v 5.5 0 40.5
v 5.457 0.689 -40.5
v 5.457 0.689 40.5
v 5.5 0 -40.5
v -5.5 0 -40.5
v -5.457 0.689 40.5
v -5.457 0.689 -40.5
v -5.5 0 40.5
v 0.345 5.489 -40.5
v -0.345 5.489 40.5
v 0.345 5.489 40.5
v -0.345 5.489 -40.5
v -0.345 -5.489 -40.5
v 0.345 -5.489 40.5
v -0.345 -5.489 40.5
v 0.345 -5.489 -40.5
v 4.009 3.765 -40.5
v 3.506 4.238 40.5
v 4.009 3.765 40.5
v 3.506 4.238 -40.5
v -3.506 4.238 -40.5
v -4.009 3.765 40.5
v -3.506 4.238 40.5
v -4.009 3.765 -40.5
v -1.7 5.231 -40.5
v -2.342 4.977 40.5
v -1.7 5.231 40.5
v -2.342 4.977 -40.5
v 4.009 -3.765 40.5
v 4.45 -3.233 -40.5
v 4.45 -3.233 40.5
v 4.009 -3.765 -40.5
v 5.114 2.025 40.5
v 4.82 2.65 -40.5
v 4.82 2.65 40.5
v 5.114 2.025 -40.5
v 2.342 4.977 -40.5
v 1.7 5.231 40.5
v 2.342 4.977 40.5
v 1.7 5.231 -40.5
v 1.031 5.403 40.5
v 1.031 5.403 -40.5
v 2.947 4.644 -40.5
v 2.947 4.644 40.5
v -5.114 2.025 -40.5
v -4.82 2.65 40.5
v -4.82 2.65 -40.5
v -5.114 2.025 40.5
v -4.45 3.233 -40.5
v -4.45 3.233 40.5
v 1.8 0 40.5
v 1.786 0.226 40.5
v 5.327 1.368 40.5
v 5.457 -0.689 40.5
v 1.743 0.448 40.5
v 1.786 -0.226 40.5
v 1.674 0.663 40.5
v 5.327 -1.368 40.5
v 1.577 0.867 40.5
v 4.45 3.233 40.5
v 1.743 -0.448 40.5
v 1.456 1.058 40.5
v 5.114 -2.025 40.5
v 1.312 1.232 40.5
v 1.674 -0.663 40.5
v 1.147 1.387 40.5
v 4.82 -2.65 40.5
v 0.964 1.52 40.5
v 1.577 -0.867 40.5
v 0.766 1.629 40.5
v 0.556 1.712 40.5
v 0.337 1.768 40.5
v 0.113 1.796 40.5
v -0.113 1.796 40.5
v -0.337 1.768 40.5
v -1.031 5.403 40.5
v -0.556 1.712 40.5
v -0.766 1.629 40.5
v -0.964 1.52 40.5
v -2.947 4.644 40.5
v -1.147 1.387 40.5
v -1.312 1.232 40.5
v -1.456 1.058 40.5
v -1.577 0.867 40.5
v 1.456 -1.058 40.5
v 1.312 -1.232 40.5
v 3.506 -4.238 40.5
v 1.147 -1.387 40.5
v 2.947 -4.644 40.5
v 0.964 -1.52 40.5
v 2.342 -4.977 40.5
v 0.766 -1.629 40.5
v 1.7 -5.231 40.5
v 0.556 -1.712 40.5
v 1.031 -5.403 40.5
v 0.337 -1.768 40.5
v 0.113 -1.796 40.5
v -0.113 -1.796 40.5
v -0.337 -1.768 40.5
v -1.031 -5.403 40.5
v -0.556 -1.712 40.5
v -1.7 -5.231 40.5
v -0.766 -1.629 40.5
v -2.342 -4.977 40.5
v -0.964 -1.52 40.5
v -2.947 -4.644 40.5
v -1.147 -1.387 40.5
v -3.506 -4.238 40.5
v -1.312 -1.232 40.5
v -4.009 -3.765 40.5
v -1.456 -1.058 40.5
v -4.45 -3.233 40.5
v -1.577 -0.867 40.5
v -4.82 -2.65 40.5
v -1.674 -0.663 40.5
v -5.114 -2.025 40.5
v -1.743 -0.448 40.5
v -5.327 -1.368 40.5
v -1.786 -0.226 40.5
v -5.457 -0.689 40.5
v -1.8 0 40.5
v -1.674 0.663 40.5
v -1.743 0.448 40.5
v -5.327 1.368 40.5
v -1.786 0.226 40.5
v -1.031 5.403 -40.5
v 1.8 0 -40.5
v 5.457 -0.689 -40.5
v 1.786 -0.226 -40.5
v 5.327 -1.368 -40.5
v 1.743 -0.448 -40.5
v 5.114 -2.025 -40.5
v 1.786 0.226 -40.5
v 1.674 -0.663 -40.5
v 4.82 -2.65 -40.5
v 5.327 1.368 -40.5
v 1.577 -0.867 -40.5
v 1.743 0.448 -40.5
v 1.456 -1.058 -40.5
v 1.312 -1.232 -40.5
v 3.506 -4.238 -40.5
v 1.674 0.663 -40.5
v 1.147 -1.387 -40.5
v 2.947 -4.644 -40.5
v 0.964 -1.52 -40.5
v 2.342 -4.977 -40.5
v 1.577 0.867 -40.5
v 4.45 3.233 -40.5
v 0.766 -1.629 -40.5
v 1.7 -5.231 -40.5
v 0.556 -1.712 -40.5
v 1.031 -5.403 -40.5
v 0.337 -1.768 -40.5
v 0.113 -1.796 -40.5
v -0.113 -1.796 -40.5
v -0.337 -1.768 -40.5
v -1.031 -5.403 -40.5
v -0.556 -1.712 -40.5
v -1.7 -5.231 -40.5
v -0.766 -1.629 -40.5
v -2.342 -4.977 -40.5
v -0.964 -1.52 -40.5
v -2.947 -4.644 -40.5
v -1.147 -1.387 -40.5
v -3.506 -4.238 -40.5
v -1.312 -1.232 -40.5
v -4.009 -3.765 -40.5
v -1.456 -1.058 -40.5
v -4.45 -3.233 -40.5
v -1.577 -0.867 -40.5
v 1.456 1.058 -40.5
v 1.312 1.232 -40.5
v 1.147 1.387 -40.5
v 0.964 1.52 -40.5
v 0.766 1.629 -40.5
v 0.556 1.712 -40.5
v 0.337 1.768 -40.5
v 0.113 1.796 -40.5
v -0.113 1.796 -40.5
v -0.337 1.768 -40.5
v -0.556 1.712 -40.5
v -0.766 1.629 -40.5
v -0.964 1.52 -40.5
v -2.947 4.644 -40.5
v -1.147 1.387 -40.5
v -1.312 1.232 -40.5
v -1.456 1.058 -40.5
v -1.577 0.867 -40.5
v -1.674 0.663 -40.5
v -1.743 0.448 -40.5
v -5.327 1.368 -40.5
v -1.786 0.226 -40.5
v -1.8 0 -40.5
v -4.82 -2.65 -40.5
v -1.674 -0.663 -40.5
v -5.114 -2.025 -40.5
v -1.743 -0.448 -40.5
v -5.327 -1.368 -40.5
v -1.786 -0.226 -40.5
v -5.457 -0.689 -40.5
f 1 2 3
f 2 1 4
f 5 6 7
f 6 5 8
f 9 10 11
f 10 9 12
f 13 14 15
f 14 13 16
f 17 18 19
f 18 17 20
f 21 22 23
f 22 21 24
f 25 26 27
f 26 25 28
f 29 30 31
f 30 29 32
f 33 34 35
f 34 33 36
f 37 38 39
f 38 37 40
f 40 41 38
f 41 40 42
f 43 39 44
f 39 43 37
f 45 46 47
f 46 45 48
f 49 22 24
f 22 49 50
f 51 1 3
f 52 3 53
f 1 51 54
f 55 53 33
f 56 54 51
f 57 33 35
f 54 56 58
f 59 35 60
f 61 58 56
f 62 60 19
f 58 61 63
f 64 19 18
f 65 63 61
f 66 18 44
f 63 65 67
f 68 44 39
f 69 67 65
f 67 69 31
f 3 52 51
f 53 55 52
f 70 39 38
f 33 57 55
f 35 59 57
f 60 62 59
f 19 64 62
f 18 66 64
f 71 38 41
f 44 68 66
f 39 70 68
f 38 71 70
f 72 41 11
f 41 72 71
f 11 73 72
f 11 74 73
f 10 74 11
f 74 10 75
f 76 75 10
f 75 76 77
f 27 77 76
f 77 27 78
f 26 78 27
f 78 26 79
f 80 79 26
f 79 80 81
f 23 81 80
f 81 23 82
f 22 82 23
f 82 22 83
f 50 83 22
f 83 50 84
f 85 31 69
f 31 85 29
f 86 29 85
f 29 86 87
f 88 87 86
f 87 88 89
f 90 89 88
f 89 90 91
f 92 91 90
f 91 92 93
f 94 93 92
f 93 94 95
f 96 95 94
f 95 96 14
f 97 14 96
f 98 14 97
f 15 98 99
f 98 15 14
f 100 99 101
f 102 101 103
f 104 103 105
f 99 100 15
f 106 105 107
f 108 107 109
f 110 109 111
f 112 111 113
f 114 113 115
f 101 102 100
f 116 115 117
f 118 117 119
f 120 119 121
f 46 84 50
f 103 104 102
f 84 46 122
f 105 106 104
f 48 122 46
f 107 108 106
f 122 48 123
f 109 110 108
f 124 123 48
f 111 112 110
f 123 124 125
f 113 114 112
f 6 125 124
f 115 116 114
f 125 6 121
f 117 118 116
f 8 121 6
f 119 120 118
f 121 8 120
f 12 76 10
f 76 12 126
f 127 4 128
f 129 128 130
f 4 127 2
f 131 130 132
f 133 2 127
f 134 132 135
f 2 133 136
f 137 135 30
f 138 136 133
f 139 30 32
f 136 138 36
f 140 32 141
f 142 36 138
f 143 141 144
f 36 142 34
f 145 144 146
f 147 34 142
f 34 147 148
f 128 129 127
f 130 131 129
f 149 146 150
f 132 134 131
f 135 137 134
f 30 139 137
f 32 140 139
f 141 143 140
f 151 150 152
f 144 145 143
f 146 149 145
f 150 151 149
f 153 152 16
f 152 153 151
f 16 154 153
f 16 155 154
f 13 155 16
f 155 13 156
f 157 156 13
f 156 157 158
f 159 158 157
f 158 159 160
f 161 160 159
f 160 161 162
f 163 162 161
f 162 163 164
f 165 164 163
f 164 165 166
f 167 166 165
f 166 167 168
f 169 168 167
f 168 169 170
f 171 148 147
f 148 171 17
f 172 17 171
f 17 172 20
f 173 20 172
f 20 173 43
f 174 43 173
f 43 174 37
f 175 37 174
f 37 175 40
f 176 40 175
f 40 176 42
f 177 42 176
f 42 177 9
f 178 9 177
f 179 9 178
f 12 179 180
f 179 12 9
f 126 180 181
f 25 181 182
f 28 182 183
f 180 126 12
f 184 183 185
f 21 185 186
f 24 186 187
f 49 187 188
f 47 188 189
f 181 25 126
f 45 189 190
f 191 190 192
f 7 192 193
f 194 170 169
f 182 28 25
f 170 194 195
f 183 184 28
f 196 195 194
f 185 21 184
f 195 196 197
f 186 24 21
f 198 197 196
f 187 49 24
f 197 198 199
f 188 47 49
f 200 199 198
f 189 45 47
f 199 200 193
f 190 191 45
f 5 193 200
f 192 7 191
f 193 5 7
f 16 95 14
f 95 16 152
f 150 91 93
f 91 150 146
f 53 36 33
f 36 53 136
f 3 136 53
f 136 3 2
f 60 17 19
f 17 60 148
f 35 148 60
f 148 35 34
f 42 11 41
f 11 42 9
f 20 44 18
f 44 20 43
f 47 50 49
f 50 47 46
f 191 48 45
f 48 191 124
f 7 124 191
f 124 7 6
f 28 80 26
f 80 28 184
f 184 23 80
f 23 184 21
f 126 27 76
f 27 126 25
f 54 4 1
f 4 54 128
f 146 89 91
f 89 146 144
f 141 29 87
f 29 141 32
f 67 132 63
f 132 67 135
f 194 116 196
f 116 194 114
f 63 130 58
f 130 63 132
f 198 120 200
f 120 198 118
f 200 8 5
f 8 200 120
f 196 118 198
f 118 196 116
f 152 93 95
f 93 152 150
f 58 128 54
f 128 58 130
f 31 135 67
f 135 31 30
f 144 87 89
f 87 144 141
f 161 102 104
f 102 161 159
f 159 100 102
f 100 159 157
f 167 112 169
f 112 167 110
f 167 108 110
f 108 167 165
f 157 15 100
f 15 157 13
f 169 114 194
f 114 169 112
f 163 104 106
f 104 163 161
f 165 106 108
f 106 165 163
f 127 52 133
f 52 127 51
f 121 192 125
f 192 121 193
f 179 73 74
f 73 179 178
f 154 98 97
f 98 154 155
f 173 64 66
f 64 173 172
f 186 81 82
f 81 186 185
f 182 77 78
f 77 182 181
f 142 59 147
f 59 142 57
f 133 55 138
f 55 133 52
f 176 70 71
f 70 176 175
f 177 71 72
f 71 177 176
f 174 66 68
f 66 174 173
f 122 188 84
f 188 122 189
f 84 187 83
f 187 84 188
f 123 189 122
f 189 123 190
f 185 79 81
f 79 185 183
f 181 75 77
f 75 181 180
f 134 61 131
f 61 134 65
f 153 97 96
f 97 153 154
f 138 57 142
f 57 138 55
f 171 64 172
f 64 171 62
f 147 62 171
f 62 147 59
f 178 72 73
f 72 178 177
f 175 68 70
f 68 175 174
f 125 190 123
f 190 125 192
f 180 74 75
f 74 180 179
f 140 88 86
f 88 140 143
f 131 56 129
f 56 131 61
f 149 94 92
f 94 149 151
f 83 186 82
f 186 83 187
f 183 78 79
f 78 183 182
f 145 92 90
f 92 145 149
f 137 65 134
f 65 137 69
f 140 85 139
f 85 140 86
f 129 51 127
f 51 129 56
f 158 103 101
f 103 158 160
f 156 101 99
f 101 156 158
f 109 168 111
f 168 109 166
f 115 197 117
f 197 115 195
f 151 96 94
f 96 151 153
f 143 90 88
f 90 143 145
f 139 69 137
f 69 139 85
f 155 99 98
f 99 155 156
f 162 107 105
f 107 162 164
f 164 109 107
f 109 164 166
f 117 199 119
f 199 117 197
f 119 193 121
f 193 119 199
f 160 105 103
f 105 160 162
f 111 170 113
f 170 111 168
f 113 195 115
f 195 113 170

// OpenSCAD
$fn = 50;


difference() {
	union() {
		translate(v = [0, 0, -40.5000000000]) {
			cylinder(h = 81, r = 5.5000000000);
		}
	}
	union() {
		#translate(v = [0, 0, -100.0000000000]) {
			cylinder(h = 200, r = 1.8000000000);
		}
	}
}
